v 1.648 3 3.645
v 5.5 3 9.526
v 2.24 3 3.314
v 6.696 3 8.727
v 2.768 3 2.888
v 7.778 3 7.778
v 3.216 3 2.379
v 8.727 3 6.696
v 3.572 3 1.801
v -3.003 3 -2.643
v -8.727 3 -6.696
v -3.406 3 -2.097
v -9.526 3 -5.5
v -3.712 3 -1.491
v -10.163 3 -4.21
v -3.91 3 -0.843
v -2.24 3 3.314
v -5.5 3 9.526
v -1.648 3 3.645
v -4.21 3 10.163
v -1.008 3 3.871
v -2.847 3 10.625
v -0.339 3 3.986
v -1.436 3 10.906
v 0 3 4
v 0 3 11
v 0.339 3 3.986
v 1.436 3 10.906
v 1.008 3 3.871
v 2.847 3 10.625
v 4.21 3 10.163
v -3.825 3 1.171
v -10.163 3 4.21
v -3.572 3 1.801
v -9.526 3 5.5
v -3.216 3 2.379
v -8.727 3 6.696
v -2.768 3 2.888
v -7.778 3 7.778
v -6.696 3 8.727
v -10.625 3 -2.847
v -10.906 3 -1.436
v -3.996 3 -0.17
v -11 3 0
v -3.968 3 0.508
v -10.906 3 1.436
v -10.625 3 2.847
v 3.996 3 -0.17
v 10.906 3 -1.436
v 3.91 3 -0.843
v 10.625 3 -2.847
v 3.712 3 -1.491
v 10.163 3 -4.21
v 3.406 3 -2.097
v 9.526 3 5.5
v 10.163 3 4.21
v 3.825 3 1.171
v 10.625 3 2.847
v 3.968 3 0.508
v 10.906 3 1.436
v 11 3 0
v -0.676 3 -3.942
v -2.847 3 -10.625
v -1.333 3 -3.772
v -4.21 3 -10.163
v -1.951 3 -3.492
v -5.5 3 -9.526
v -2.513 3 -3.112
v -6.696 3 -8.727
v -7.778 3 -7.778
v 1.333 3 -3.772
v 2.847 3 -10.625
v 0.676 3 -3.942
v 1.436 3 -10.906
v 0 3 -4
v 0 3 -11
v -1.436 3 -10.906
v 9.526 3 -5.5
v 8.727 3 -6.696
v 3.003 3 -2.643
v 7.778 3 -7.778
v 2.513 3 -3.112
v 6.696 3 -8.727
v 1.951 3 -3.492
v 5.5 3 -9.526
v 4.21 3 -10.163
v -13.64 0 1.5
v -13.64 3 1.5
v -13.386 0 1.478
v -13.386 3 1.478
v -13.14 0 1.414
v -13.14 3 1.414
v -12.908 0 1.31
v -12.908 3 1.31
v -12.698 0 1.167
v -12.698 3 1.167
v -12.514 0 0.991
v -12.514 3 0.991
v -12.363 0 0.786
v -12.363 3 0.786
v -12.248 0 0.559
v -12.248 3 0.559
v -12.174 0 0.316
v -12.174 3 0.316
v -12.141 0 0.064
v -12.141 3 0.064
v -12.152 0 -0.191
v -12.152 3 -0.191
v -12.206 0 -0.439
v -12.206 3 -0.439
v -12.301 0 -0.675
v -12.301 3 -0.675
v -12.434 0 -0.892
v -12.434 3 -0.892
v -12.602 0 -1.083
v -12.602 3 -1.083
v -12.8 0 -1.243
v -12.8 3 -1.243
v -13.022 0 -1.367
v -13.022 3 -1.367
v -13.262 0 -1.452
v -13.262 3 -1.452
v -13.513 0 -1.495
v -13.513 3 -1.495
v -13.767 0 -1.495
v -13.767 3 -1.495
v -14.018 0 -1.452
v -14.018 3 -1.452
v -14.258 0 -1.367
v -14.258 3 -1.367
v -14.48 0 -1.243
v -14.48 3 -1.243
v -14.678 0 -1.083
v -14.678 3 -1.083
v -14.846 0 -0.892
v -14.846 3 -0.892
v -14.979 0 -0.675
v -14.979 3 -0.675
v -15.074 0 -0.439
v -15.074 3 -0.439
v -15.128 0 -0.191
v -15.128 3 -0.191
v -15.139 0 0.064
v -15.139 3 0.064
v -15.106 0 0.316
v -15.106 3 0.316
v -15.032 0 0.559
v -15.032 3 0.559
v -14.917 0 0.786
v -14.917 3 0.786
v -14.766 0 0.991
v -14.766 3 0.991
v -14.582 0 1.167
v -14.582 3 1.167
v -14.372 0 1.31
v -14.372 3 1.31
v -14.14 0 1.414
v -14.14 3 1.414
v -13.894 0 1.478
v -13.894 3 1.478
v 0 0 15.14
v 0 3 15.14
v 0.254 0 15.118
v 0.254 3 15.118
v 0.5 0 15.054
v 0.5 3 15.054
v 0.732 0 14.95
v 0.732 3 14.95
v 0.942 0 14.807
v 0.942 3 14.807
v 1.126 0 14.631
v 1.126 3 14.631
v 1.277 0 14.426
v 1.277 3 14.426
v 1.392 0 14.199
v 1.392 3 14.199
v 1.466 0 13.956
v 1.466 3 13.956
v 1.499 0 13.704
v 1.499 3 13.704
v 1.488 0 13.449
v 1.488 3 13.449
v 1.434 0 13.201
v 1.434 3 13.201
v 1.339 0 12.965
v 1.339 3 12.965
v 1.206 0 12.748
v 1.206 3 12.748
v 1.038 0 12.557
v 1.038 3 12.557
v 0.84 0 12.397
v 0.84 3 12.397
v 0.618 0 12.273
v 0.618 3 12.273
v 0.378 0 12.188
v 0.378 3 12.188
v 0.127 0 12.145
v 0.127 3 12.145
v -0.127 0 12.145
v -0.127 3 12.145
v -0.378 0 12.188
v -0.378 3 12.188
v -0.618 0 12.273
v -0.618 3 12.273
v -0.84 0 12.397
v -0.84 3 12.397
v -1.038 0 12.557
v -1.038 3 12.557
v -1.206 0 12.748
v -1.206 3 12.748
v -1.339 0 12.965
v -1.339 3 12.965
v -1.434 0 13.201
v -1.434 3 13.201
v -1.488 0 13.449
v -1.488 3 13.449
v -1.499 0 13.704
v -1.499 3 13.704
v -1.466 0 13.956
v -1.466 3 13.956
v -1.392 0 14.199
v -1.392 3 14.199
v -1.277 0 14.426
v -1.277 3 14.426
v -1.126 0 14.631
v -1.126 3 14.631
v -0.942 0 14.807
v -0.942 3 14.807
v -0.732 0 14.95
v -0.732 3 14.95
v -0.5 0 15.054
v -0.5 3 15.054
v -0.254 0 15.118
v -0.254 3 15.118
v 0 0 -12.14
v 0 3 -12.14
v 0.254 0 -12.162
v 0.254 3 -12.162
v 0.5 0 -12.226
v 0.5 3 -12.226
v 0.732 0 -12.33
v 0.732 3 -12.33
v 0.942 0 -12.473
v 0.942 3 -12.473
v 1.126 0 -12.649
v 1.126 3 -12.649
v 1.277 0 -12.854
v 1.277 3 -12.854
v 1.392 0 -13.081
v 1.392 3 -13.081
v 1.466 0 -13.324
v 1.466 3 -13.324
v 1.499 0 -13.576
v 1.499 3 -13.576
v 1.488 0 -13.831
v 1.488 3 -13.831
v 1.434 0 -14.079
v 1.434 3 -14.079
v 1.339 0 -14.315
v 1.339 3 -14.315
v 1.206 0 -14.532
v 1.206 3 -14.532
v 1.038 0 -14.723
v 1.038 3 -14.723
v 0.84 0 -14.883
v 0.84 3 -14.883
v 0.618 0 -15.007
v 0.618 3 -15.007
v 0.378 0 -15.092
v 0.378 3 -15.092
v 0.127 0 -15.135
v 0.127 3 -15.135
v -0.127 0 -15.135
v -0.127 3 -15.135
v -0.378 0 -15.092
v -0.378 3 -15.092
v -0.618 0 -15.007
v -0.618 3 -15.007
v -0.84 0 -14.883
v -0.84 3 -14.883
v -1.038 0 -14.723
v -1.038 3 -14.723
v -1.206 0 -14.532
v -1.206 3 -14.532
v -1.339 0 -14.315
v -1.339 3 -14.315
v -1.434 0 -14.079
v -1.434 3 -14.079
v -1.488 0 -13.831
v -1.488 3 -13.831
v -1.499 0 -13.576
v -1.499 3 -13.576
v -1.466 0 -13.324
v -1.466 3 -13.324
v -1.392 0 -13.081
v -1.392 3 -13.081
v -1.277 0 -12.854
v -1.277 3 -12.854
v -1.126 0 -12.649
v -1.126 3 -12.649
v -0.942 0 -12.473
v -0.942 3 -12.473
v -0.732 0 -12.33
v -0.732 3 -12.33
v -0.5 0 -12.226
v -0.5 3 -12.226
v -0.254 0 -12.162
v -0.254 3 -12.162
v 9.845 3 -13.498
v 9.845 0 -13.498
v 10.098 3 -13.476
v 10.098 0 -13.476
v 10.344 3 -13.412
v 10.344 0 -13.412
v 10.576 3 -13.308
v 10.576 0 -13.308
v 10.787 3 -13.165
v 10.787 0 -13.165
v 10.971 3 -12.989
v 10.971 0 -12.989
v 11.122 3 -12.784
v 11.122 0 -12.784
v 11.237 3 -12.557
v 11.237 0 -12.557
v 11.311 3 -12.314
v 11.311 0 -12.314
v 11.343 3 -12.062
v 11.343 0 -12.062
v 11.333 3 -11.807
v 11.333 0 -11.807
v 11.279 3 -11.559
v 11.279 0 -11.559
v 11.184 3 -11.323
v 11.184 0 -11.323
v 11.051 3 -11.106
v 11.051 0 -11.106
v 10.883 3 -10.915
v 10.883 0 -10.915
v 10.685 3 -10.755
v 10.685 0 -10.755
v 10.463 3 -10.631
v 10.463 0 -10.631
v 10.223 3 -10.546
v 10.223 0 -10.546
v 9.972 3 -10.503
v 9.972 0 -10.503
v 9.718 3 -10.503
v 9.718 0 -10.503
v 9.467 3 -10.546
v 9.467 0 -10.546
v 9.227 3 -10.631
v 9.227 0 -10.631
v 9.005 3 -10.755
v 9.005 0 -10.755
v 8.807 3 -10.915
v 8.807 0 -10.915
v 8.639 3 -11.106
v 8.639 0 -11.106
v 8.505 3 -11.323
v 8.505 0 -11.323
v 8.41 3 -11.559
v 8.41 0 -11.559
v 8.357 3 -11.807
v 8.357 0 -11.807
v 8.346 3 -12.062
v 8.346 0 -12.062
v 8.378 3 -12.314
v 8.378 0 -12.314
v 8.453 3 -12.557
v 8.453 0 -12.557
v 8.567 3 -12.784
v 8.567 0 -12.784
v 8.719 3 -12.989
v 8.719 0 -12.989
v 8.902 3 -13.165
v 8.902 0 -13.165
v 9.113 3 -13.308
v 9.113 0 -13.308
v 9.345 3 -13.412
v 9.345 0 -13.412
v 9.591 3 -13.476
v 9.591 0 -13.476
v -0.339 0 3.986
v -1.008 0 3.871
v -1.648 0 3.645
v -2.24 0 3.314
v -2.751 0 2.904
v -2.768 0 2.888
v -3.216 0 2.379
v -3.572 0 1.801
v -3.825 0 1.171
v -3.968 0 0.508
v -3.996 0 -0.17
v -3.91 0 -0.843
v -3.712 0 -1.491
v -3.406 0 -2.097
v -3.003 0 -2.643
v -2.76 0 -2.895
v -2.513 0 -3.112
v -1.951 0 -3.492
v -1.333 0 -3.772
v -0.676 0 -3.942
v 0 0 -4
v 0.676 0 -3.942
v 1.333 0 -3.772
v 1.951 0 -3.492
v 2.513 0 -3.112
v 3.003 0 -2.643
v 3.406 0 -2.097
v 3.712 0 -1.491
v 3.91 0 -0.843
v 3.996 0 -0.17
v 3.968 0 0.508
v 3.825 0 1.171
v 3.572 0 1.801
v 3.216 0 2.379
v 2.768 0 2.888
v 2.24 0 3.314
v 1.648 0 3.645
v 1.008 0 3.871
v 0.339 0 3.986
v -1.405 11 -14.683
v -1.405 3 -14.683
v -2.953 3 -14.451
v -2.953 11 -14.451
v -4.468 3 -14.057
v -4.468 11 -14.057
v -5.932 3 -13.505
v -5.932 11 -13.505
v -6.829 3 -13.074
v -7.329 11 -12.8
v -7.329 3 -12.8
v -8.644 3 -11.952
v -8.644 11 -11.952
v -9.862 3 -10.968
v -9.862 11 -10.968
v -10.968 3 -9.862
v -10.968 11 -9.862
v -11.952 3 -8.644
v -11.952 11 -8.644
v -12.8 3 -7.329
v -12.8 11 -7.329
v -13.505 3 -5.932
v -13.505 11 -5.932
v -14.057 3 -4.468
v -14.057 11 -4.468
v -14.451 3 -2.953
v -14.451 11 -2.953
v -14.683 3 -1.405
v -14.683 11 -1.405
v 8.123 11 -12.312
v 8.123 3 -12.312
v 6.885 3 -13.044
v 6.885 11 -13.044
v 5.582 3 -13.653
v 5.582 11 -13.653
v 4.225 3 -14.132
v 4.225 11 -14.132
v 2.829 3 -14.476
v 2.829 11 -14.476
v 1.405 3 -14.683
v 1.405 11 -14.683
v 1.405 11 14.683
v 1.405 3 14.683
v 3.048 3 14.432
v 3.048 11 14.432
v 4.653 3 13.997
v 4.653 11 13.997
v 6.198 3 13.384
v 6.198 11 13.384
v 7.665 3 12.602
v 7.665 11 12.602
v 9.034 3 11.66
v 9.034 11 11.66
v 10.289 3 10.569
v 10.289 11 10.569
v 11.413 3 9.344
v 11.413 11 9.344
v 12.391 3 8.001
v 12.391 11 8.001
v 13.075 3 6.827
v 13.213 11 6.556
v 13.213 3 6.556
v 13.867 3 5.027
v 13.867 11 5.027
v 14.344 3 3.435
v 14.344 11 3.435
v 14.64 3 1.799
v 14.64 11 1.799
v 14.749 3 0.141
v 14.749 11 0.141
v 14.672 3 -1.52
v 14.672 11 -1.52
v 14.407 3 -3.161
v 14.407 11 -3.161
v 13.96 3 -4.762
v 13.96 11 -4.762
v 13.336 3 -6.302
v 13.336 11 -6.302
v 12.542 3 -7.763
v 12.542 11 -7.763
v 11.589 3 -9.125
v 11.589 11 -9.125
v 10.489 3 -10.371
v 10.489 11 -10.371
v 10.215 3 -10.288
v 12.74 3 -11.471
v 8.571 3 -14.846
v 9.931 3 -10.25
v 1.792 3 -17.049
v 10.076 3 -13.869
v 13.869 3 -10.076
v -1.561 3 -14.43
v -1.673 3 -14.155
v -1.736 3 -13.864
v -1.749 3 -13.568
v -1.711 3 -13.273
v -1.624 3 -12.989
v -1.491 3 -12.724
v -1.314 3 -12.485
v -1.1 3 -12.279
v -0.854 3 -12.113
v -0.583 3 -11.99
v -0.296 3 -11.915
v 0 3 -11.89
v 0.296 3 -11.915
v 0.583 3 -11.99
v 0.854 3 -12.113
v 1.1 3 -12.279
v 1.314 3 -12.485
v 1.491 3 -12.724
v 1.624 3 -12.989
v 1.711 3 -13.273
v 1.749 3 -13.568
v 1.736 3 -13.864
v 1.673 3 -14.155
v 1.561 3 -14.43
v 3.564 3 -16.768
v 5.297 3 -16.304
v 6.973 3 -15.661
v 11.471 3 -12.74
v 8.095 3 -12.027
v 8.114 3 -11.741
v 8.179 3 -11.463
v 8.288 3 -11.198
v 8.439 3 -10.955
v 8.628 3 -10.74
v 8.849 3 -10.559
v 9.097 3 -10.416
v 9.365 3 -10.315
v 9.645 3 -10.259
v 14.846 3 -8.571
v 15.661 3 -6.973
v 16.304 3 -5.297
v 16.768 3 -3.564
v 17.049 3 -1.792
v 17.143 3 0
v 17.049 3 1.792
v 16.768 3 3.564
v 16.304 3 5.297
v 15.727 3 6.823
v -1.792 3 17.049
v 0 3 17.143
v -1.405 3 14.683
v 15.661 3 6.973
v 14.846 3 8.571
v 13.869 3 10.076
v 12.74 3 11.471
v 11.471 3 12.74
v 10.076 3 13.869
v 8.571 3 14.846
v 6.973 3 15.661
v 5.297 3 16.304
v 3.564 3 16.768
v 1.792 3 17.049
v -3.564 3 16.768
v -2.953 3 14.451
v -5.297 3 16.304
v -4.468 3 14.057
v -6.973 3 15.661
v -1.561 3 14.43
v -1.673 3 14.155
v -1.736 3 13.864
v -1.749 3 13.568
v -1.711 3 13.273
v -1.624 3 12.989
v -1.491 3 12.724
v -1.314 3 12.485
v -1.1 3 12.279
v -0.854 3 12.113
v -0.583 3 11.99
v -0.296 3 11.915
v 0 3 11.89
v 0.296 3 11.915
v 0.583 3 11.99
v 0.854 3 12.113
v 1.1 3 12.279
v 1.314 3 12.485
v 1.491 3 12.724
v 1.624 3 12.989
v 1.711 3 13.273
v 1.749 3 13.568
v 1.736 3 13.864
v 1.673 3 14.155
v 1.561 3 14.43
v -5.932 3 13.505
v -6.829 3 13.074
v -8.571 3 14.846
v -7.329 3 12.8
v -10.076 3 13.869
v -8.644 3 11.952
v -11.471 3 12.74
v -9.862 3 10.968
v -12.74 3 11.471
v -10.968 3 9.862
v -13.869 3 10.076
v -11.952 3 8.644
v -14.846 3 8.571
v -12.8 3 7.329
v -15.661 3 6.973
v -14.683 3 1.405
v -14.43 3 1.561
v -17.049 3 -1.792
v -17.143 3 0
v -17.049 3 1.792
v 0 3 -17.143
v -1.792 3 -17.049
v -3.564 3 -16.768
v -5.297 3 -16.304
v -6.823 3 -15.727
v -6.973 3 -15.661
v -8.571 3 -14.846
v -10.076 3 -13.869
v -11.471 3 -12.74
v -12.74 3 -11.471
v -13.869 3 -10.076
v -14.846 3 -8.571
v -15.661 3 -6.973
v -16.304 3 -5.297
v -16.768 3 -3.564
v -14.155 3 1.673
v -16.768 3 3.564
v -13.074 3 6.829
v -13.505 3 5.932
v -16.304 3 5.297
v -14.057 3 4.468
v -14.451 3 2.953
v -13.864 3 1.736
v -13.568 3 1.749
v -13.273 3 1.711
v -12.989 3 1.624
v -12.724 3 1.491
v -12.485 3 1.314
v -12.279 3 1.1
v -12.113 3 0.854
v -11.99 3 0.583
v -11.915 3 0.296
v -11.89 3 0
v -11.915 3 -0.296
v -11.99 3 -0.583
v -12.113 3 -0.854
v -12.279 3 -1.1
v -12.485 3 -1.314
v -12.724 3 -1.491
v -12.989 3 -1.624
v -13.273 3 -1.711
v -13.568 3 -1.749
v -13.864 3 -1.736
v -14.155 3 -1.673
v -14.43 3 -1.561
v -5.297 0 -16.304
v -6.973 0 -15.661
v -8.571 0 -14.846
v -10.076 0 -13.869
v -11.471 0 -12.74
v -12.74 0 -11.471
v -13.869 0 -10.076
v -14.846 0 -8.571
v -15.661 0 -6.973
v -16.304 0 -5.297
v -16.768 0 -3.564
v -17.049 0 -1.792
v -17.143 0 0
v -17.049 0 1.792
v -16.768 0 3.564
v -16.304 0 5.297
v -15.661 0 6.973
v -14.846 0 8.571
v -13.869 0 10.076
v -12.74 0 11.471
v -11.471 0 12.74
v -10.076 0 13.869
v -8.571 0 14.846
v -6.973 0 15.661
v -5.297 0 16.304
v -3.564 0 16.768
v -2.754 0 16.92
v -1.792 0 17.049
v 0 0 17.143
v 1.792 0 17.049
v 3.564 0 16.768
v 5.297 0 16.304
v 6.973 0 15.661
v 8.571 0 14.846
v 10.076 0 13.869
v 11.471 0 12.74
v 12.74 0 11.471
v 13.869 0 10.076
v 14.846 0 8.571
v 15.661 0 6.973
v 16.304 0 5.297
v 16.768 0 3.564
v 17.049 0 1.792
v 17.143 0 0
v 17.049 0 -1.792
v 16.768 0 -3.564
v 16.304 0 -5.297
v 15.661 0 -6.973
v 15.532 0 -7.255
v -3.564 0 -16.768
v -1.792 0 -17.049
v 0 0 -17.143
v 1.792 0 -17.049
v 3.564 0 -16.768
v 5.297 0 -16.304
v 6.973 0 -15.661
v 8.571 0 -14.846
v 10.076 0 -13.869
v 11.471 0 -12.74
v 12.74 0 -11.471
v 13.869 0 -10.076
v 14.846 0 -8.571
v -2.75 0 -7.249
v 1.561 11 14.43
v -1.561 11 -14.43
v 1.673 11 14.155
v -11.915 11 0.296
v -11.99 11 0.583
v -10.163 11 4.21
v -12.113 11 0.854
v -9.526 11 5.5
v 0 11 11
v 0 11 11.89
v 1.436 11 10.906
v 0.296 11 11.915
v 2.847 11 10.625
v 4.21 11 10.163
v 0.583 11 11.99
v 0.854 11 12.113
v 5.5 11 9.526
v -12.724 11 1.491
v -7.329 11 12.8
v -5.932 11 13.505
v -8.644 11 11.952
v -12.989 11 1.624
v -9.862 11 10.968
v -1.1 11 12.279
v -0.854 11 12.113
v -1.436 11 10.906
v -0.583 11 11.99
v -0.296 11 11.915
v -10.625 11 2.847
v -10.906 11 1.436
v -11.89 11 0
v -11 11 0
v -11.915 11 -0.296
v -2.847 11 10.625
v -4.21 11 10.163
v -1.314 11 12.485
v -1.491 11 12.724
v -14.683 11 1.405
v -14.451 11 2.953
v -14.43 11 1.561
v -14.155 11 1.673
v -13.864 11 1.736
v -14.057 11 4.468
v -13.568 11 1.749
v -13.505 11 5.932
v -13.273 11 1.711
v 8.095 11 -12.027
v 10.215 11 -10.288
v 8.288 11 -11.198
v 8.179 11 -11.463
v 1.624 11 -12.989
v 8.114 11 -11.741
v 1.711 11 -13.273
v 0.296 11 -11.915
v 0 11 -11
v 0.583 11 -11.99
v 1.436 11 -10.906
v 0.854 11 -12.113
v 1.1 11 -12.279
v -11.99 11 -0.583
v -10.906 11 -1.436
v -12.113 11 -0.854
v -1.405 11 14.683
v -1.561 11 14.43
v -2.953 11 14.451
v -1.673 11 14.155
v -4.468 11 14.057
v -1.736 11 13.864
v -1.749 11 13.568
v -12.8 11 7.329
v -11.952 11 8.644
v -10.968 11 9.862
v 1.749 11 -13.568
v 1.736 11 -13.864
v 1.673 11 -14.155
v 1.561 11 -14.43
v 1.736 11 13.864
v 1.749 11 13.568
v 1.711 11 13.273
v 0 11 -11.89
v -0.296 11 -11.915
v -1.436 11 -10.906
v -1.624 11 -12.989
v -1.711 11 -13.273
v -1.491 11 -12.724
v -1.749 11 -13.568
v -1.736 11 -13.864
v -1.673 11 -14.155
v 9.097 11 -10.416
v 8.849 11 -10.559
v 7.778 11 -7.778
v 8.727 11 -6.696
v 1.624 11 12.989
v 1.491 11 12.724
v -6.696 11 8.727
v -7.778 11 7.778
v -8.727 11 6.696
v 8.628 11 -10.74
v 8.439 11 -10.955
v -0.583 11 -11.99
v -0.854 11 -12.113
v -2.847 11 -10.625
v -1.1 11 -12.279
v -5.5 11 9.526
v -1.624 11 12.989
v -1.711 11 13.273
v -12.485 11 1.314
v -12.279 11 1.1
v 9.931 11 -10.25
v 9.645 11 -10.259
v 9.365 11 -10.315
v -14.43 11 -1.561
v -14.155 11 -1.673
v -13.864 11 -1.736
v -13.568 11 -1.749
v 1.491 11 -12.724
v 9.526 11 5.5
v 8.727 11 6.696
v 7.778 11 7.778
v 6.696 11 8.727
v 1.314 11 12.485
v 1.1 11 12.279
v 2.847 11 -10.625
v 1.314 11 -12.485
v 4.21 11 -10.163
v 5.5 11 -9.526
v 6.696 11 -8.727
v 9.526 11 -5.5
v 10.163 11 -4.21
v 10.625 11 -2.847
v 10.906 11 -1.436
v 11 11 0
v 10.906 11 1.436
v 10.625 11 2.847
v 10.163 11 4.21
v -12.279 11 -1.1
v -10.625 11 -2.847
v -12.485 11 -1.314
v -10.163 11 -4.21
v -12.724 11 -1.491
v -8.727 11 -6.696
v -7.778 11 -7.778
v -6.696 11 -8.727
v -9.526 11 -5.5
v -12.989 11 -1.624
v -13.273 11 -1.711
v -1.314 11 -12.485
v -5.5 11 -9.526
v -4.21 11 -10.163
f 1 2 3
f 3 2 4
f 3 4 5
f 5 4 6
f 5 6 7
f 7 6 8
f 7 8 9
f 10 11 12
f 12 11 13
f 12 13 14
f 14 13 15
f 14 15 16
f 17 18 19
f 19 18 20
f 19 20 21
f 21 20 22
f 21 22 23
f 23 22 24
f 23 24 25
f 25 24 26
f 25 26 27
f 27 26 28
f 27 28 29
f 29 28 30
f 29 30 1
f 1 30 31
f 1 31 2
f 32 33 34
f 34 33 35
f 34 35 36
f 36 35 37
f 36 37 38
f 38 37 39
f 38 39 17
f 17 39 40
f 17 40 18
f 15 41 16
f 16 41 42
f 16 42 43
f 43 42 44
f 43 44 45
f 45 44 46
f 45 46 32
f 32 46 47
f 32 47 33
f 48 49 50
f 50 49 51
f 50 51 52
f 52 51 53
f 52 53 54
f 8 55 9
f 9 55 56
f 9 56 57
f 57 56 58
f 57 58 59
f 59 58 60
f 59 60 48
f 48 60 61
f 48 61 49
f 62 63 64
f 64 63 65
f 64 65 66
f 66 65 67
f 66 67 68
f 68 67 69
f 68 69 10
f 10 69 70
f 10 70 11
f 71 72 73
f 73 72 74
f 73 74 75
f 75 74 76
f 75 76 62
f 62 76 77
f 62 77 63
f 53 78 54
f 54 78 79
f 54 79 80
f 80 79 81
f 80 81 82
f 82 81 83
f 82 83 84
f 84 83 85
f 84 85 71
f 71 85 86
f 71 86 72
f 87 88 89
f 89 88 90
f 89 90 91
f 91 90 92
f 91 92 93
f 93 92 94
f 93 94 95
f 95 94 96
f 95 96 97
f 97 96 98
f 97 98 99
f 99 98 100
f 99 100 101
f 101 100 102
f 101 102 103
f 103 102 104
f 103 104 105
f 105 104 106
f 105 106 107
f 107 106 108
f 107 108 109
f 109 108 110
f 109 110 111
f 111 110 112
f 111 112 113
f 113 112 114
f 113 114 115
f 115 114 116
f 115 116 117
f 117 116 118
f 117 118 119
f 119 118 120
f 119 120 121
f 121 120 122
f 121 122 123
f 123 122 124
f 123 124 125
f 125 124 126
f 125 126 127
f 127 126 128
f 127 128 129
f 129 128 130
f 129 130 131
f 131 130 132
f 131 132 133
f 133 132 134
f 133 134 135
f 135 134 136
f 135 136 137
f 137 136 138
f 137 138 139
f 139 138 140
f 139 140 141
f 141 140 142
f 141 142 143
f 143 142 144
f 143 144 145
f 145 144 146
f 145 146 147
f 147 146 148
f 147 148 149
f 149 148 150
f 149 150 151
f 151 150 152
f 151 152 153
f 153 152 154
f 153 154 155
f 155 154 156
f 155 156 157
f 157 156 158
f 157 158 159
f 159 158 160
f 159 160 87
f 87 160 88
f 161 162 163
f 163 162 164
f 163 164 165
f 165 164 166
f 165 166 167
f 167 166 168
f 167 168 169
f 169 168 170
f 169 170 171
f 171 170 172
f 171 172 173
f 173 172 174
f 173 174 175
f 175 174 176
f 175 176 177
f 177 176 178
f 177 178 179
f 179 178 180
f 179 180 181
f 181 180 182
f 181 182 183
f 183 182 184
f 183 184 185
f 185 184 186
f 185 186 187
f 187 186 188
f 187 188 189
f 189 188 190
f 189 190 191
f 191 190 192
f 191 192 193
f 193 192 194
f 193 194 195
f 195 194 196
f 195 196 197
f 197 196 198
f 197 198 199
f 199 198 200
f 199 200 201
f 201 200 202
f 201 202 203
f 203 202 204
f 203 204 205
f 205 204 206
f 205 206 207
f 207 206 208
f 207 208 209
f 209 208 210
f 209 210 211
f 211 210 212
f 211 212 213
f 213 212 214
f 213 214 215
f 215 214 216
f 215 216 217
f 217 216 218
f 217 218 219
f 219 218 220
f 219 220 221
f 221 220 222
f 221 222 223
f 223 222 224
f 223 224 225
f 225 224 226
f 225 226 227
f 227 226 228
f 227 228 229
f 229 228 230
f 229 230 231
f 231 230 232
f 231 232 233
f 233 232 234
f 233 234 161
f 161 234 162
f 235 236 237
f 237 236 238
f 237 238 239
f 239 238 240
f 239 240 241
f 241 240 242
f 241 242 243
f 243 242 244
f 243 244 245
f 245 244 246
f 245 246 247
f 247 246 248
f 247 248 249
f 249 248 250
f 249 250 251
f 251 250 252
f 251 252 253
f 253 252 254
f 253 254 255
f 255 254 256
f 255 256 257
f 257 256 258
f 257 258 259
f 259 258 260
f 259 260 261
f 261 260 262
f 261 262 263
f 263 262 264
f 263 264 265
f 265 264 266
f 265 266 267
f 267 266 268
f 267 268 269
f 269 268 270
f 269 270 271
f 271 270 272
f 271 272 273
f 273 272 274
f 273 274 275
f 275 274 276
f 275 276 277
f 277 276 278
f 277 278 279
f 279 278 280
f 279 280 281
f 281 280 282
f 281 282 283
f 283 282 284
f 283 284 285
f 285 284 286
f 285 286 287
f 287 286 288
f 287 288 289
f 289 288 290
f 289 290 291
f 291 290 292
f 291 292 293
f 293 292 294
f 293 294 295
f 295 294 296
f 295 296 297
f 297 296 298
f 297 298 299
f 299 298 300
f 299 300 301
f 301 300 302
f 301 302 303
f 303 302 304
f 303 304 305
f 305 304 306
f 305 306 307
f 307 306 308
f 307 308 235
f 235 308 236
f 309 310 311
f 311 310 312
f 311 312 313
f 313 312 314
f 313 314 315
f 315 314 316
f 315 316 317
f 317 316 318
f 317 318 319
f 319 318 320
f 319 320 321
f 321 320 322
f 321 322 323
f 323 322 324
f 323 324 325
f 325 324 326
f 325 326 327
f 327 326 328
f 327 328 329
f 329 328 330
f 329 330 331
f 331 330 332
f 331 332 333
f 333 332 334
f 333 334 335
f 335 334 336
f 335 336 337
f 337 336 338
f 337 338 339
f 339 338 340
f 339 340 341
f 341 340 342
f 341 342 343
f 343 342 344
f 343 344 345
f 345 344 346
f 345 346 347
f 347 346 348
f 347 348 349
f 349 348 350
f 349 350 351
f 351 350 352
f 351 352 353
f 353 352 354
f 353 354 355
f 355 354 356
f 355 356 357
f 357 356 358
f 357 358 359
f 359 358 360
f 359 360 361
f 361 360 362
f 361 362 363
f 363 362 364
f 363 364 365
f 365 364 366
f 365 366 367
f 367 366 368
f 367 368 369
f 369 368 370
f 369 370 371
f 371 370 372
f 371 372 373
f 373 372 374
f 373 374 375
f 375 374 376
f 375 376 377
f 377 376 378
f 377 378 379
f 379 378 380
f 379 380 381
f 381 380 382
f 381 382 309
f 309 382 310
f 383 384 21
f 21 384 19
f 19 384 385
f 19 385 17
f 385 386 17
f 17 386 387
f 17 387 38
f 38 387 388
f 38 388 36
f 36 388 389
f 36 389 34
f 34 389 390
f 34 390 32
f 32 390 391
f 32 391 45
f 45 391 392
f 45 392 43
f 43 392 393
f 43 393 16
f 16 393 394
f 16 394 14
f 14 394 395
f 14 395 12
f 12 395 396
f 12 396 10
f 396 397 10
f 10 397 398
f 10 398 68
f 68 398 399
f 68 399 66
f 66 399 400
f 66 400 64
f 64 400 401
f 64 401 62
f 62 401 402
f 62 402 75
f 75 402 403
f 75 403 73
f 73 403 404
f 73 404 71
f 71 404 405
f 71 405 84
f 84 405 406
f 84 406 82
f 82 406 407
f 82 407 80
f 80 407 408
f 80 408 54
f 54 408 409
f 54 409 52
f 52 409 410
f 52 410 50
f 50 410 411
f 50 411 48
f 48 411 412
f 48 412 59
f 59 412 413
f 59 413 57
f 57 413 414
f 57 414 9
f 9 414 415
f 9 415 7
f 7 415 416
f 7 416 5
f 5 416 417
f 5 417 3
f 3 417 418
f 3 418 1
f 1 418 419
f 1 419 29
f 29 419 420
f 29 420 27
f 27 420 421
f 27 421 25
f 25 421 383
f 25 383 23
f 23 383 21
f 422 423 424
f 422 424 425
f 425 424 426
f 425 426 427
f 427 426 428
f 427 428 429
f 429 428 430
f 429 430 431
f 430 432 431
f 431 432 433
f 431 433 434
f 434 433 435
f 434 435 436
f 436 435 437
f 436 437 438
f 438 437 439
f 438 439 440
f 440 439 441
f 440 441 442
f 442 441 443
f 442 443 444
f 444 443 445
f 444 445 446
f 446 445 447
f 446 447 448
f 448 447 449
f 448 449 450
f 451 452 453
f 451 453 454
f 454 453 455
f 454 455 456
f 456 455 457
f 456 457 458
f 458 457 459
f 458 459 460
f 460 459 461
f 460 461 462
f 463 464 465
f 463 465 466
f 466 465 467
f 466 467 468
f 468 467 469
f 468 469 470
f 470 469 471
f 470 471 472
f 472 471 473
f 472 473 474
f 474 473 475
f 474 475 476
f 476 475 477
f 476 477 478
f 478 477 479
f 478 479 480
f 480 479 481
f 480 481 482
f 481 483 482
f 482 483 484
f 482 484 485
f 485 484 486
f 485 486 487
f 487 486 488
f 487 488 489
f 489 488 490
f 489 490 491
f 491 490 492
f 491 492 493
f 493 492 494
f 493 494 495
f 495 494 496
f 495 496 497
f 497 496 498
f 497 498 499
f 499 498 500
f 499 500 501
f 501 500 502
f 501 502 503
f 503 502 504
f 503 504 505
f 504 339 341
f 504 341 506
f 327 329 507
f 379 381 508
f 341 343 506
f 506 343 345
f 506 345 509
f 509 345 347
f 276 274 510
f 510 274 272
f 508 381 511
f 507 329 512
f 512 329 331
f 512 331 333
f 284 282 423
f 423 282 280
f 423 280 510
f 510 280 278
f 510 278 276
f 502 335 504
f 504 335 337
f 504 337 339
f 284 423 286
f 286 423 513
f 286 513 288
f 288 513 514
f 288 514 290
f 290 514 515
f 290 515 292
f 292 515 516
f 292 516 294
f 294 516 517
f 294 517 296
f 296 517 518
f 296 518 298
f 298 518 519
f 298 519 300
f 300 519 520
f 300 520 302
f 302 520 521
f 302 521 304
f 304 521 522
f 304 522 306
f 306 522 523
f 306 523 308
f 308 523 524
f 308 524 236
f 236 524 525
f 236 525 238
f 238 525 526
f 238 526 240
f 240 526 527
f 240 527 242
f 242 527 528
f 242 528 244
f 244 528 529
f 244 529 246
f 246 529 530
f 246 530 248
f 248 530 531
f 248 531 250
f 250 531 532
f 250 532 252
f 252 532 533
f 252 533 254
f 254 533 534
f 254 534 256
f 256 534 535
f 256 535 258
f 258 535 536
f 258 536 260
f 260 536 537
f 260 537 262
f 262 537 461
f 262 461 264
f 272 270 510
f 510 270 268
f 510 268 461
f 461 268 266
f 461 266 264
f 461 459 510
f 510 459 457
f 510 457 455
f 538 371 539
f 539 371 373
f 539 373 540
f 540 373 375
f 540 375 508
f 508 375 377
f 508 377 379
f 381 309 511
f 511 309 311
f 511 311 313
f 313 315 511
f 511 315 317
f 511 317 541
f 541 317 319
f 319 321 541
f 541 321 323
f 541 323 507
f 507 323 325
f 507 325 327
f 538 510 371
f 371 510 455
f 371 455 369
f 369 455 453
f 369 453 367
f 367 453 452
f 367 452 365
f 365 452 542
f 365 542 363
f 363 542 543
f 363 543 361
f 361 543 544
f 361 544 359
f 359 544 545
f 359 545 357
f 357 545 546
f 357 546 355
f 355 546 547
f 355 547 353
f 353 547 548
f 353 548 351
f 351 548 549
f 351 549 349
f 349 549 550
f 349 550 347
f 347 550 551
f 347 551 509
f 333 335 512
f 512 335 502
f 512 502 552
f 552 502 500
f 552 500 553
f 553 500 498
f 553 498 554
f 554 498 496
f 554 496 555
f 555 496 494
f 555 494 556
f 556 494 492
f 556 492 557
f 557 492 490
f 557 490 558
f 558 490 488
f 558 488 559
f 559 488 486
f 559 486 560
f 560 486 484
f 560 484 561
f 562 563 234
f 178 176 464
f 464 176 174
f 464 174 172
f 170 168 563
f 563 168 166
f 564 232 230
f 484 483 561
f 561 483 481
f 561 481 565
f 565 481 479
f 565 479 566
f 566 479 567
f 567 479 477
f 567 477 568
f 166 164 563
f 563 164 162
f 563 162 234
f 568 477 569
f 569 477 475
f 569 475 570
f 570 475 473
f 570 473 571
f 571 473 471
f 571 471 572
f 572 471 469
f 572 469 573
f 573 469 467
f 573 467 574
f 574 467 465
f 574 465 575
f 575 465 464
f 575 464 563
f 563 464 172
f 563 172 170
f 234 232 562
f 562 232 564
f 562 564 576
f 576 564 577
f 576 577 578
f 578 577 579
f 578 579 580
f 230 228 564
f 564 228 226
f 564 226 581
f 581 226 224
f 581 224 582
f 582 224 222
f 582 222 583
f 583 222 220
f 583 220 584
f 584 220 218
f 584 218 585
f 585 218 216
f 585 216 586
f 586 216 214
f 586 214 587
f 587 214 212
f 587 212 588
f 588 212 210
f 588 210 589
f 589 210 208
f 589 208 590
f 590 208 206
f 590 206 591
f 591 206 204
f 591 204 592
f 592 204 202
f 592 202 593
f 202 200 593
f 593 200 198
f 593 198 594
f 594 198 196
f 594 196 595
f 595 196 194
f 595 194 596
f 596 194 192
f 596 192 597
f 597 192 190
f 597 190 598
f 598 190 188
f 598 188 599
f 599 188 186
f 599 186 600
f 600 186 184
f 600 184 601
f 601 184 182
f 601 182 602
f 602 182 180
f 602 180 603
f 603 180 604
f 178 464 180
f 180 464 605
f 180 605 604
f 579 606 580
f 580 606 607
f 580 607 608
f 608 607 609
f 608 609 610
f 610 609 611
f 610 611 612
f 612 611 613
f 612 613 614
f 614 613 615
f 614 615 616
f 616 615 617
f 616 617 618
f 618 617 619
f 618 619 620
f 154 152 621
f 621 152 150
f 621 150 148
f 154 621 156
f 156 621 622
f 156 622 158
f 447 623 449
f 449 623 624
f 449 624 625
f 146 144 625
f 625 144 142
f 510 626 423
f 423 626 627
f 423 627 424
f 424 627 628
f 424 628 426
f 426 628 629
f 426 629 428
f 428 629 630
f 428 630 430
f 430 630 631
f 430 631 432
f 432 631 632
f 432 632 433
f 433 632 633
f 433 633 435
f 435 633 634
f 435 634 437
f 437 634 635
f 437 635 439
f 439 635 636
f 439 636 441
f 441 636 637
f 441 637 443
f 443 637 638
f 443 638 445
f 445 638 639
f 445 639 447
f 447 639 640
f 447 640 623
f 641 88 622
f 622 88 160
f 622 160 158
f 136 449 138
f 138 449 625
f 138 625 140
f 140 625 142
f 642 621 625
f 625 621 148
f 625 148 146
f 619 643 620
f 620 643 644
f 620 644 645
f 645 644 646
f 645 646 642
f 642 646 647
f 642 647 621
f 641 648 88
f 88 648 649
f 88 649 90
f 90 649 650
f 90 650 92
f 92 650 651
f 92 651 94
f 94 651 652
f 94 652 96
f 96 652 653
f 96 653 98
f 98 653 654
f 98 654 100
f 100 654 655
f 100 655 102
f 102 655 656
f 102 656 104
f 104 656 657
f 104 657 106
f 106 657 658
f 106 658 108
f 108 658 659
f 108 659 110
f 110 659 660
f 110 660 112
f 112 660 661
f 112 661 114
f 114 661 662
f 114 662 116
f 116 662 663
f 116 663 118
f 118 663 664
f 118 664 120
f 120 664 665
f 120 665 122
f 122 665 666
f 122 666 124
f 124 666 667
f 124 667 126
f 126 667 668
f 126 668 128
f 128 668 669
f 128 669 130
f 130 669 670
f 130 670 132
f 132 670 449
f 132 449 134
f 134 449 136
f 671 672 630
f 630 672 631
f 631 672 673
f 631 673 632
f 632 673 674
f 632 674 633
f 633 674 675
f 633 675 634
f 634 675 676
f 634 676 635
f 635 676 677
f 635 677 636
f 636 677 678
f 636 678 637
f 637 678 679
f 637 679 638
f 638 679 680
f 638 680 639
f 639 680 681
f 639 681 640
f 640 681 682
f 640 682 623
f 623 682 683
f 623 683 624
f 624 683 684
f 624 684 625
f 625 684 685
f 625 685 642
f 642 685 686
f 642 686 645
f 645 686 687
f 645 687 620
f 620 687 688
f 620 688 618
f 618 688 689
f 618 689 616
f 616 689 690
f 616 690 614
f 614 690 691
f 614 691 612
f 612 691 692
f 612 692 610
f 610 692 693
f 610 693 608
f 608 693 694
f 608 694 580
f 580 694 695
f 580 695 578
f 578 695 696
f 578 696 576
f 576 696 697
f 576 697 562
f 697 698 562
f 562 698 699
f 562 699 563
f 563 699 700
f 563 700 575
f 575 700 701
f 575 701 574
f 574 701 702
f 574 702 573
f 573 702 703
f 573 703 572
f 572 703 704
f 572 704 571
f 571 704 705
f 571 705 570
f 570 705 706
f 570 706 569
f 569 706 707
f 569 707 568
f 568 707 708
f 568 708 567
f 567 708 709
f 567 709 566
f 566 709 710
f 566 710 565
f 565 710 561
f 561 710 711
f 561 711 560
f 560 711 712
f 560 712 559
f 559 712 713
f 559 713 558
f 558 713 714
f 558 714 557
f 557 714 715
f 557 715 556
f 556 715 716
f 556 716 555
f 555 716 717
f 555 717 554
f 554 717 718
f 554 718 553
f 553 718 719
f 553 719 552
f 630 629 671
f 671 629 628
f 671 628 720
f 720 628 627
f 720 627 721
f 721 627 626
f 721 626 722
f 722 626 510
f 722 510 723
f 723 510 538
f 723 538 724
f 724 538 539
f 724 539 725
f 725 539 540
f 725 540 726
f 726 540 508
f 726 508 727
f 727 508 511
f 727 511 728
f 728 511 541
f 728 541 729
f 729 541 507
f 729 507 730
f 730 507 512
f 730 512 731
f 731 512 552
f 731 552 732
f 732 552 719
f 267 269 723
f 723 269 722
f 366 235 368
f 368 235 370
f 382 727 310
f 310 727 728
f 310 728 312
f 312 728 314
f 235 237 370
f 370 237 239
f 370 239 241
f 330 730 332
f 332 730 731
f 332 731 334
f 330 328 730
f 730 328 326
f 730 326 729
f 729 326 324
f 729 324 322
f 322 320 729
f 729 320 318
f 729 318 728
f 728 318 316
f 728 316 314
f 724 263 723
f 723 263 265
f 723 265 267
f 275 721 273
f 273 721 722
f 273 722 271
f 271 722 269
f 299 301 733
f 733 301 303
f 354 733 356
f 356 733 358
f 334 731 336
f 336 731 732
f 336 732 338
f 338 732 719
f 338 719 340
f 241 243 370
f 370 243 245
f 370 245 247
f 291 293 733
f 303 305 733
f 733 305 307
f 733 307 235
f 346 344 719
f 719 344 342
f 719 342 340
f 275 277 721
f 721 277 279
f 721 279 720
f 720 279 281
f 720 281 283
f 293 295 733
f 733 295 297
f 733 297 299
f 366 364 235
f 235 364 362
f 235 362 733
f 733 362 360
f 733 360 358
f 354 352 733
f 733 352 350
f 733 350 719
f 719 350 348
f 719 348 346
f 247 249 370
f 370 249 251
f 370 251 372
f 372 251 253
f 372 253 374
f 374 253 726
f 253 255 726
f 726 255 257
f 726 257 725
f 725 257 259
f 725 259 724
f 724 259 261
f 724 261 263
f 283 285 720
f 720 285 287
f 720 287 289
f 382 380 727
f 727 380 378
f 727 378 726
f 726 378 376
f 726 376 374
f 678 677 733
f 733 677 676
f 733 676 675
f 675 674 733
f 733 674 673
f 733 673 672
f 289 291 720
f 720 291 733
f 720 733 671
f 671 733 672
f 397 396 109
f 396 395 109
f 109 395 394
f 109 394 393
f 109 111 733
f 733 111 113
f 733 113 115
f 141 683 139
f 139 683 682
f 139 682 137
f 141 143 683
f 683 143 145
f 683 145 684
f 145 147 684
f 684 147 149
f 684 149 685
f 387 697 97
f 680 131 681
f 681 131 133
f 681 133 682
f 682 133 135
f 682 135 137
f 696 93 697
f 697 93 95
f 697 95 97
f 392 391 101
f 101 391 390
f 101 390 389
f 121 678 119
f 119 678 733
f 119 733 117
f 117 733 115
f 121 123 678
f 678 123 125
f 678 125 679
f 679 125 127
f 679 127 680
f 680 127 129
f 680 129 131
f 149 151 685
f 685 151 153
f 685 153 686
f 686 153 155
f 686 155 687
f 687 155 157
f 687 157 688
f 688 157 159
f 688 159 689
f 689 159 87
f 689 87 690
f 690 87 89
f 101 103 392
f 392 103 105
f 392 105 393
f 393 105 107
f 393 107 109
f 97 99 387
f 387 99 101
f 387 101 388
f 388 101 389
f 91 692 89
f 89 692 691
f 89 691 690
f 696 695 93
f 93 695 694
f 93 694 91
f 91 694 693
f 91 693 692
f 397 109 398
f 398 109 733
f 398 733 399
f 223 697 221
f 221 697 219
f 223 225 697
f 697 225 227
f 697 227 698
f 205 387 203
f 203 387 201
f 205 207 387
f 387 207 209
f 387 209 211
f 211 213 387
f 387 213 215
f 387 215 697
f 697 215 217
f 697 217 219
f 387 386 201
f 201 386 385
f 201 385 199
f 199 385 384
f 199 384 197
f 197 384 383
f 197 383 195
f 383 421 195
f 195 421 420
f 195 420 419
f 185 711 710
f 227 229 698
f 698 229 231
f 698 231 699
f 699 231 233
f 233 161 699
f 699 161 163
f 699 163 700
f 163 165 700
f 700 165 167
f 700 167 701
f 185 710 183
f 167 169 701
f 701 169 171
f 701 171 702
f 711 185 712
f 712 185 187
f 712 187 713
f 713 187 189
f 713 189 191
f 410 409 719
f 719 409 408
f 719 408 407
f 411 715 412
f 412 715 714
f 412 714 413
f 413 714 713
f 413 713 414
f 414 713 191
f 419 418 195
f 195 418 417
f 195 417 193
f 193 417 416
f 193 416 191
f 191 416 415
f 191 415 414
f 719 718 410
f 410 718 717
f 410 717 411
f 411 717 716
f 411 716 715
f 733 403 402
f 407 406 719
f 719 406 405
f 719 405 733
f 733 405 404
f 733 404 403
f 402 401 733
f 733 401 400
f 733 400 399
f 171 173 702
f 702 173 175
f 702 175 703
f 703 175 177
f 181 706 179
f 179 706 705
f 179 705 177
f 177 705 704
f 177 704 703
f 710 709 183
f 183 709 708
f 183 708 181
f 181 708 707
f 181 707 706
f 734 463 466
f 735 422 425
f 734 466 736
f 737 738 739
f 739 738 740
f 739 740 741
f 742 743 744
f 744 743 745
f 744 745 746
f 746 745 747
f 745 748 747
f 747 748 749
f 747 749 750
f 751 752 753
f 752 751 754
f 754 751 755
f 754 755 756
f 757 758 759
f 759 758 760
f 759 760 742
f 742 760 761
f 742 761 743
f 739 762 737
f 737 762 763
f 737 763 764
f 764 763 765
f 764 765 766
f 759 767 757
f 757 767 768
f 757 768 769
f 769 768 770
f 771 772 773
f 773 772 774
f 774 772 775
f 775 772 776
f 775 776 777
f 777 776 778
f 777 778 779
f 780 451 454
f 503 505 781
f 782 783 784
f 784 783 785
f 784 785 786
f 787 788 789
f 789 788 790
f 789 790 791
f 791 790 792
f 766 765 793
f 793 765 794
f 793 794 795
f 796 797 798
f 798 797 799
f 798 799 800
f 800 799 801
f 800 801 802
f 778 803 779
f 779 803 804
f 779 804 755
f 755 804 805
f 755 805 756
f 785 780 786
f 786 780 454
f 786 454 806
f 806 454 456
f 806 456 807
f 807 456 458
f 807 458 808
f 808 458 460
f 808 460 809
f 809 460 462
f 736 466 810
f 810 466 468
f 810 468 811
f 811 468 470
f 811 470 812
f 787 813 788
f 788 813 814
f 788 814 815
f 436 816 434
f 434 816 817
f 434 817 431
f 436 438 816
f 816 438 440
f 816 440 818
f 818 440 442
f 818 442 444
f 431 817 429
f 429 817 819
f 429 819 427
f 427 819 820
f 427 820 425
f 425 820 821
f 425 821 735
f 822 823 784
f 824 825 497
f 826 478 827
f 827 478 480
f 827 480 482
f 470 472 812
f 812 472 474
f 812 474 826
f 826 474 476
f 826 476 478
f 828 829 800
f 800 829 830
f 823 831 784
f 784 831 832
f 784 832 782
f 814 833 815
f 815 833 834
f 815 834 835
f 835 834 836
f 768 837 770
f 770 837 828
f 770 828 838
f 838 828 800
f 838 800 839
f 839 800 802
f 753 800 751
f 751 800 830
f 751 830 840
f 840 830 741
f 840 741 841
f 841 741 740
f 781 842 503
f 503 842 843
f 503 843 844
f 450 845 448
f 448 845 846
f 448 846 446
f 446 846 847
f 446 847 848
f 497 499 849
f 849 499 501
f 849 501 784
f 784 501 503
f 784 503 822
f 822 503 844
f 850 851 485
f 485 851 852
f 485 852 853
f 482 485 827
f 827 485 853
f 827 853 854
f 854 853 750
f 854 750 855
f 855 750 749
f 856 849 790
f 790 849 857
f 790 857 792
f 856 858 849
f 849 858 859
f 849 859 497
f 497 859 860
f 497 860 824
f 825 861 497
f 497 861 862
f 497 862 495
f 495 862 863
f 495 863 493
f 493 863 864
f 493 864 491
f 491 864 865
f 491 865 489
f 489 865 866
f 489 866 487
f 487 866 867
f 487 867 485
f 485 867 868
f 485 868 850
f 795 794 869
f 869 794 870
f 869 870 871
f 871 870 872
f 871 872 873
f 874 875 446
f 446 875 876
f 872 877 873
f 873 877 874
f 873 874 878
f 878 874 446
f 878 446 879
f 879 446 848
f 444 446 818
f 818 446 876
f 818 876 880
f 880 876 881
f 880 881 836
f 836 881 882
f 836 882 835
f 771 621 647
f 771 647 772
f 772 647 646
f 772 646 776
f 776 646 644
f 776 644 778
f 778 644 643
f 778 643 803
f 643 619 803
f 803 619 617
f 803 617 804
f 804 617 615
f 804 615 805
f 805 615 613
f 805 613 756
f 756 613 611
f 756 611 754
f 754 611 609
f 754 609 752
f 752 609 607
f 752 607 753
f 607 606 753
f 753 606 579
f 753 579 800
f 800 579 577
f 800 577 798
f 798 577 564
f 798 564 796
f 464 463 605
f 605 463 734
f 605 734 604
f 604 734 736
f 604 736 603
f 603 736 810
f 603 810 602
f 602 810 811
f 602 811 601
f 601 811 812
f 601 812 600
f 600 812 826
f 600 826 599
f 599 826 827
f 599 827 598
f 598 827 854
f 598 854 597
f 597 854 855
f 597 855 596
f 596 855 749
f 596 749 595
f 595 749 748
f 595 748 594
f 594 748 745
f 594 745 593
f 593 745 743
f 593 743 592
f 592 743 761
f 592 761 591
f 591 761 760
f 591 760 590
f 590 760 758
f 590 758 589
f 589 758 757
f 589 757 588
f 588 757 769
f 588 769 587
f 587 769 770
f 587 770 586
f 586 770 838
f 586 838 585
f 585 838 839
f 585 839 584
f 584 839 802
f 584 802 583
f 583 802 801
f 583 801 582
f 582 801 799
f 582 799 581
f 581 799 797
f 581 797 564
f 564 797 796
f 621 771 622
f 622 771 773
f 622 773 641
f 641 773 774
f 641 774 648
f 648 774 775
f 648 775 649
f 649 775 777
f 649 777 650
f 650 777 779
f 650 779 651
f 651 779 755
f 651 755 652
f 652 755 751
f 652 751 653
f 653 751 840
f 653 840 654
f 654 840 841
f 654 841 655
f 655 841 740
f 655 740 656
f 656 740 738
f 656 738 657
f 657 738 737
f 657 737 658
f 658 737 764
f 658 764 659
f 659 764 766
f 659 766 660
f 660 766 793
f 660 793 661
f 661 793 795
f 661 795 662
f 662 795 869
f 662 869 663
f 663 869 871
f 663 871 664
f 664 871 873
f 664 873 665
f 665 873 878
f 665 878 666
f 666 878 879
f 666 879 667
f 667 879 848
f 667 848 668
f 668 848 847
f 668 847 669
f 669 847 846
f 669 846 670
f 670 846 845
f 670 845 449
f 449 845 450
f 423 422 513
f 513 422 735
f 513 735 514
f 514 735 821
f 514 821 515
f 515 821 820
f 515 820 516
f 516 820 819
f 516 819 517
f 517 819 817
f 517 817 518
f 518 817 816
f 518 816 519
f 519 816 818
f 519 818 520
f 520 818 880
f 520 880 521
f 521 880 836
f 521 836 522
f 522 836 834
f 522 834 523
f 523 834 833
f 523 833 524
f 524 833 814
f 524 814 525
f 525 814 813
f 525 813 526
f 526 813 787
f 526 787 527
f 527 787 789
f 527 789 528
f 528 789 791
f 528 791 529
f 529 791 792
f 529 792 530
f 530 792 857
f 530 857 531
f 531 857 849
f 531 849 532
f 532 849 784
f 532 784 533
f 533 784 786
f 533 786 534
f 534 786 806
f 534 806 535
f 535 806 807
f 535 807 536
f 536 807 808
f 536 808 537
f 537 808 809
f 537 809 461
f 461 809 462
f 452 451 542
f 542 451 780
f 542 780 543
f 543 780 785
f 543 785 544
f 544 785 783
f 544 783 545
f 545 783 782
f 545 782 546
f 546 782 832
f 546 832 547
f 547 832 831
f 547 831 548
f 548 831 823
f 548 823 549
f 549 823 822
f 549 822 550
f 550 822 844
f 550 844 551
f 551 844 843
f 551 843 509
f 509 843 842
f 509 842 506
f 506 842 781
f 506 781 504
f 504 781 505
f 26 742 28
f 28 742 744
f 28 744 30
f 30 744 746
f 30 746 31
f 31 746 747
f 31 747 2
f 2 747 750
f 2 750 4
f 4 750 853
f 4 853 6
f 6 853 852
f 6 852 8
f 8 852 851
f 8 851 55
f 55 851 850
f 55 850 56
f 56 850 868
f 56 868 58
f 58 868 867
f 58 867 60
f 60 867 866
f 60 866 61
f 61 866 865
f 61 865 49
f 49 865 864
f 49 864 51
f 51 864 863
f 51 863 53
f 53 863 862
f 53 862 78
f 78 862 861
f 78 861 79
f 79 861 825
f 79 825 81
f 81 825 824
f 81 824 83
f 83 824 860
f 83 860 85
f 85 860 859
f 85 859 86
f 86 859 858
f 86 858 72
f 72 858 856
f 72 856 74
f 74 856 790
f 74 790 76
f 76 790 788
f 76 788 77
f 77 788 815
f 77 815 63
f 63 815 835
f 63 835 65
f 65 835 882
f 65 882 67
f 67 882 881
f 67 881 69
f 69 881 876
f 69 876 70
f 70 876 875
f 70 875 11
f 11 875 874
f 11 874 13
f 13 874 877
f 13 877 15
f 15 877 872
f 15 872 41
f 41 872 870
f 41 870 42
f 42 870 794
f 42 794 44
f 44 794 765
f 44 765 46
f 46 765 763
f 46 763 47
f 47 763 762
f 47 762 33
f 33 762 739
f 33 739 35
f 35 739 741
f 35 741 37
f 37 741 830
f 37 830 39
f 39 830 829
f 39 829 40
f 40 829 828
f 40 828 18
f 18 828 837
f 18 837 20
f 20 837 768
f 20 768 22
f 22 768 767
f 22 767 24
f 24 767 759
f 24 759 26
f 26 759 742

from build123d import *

# Parameters (mm, degrees)
CROQUIS2_R                   = 1.5
CORTAR_EXTRUIR1_DEPTH        = 10
CROQUIS3_R                   = 1.5
SALIENTE_EXTRUIR1_DEPTH      = 3
CROQUIS4_R                   = 1.5
CORTAR_EXTRUIR2_DEPTH        = 10
SALIENTE_EXTRUIR2_DEPTH      = 4
SALIENTE_EXTRUIR2_DEPTH_BACK = 4
CROQUIS5_R                   = 14.75
CROQUIS5_R_2                 = 11.75
CORTAR_EXTRUIR3_START        = -12
CROQUIS6_R                   = 1.5
CORTAR_EXTRUIR3_DEPTH        = 12
CROQUIS8_R                   = 10.142857143
CORTAR_EXTRUIR4_DEPTH        = 9
CROQUIS9_R                   = 1.75
CORTAR_EXTRUIR6_DEPTH        = 8
CROQUIS10_R                  = 11.75
CROQUIS10_R_2                = 11.125
SALIENTE_EXTRUIR3_DEPTH      = 10
CROQUIS11_R                  = 11.125
CROQUIS11_R_2                = 11
SALIENTE_EXTRUIR4_DEPTH      = 10


with BuildPart() as part:
    # Croquis1 → Revolución1 (revolve)
    with BuildSketch(Plane.XY, mode=Mode.PRIVATE) as revoluci_n1_sk:
        Polygon((-4, 0), (-4, 7), (-5, 7), (-10.142857143, 3), (-17.142857143, 3), (-17.142857143, 0), (-14, 0), align=None)
    revolve(revoluci_n1_sk.sketch.rotate(Axis((0, 0, 0), (0, 1, 0)), 270), axis=Axis((0, 0, 0), (0, 1, 0)))

    # Croquis2 → Cortar-Extruir1 (cut)
    with BuildSketch(Plane(origin=(0, 3, 0), x_dir=(1, 0, 0), z_dir=(0, 1, 0))):
        with Locations(Location((0, 13.64, 0), (0, 0, 270))):
            Circle(CROQUIS2_R)
        with Locations(Location((13.64, 0, 0), (0, 0, 270))):
            Circle(CROQUIS2_R)
        with Locations(Location((0, -13.64, 0), (0, 0, 270))):
            Circle(CROQUIS2_R)
        with Locations(Location((-13.64, 0, 0), (0, 0, 270))):
            Circle(CROQUIS2_R)
    extrude(amount=-CORTAR_EXTRUIR1_DEPTH, mode=Mode.SUBTRACT)

    # Croquis3 → Saliente-Extruir1 (add)
    with BuildSketch(Plane(origin=(0, 3, 0), x_dir=(1, 0, 0), z_dir=(0, 1, 0))):
        with Locations((13.64, 0)):
            Circle(CROQUIS3_R)
    extrude(amount=-SALIENTE_EXTRUIR1_DEPTH)

    # Croquis4 → Cortar-Extruir2 (cut)
    with BuildSketch(Plane(origin=(0, 0, 0), x_dir=(-1, 0, 0), z_dir=(0, -1, 0))):
        with Locations(Location((-9.844736786, 11.997981397, 0), (0, 0, 90))):
            Circle(CROQUIS4_R)
    extrude(amount=-CORTAR_EXTRUIR2_DEPTH, mode=Mode.SUBTRACT)

    # Croquis5 → Saliente-Extruir2 (add, two sides: drawn at the far end of the back side and taken through both)
    with BuildSketch(Plane(origin=(0, 7, 0), x_dir=(1, 0, 0), z_dir=(0, 1, 0)).offset(-SALIENTE_EXTRUIR2_DEPTH_BACK)):
        with Locations(Location((0, 0, 0), (0, 0, 85.923723928))):
            Circle(CROQUIS5_R)
        with Locations(Location((0, 0, 0), (0, 0, 270))):
            Circle(CROQUIS5_R_2, mode=Mode.SUBTRACT)
    extrude(amount=SALIENTE_EXTRUIR2_DEPTH + SALIENTE_EXTRUIR2_DEPTH_BACK)

    # Croquis6 → Cortar-Extruir3 (cut)
    with BuildSketch(Plane(origin=(0, 0, 0), x_dir=(-1, 0, 0), z_dir=(0, -1, 0)).offset(CORTAR_EXTRUIR3_START)):
        with Locations(Location((13.64, 0, 0), (0, 0, 270))):
            Circle(CROQUIS6_R)
        with Locations(Location((0, -13.64, 0), (0, 0, 270))):
            Circle(CROQUIS6_R)
        with Locations(Location((-9.844736786, 11.997981397, 0), (0, 0, 90))):
            Circle(CROQUIS6_R)
        with Locations(Location((0, 13.64, 0), (0, 0, 270))):
            Circle(CROQUIS6_R)
    extrude(amount=CORTAR_EXTRUIR3_DEPTH, mode=Mode.SUBTRACT)

    # Croquis8 → Cortar-Extruir4 (cut)
    with BuildSketch(Plane(origin=(0, 3, 0), x_dir=(1, 0, 0), z_dir=(0, 1, 0))):
        Circle(CROQUIS8_R)
    extrude(amount=CORTAR_EXTRUIR4_DEPTH, mode=Mode.SUBTRACT)

    # Croquis9 → Cortar-Extruir6 (cut)
    with BuildSketch(Plane(origin=(0, 11, 0), x_dir=(1, 0, 0), z_dir=(0, 1, 0))):
        with Locations((9.844736786, 11.997981397)):
            Circle(CROQUIS9_R)
        with Locations((0, 13.64)):
            Circle(CROQUIS9_R)
        with Locations((-13.64, 0)):
            Circle(CROQUIS9_R)
        with Locations((0, -13.64)):
            Circle(CROQUIS9_R)
    extrude(amount=-CORTAR_EXTRUIR6_DEPTH, mode=Mode.SUBTRACT)

    # Croquis10 → Saliente-Extruir3 (add)
    with BuildSketch(Plane(origin=(0, 11, 0), x_dir=(1, 0, 0), z_dir=(0, 1, 0))):
        Circle(CROQUIS10_R)
        with Locations(Location((0, 0, 0), (0, 0, 270))):
            Circle(CROQUIS10_R_2, mode=Mode.SUBTRACT)
    extrude(amount=-SALIENTE_EXTRUIR3_DEPTH)

    # Croquis11 → Saliente-Extruir4 (add)
    with BuildSketch(Plane(origin=(0, 11, 0), x_dir=(1, 0, 0), z_dir=(0, 1, 0))):
        Circle(CROQUIS11_R)
        with Locations(Location((0, 0, 0), (0, 0, 270))):
            Circle(CROQUIS11_R_2, mode=Mode.SUBTRACT)
    extrude(amount=-SALIENTE_EXTRUIR4_DEPTH)


solid = part.part
